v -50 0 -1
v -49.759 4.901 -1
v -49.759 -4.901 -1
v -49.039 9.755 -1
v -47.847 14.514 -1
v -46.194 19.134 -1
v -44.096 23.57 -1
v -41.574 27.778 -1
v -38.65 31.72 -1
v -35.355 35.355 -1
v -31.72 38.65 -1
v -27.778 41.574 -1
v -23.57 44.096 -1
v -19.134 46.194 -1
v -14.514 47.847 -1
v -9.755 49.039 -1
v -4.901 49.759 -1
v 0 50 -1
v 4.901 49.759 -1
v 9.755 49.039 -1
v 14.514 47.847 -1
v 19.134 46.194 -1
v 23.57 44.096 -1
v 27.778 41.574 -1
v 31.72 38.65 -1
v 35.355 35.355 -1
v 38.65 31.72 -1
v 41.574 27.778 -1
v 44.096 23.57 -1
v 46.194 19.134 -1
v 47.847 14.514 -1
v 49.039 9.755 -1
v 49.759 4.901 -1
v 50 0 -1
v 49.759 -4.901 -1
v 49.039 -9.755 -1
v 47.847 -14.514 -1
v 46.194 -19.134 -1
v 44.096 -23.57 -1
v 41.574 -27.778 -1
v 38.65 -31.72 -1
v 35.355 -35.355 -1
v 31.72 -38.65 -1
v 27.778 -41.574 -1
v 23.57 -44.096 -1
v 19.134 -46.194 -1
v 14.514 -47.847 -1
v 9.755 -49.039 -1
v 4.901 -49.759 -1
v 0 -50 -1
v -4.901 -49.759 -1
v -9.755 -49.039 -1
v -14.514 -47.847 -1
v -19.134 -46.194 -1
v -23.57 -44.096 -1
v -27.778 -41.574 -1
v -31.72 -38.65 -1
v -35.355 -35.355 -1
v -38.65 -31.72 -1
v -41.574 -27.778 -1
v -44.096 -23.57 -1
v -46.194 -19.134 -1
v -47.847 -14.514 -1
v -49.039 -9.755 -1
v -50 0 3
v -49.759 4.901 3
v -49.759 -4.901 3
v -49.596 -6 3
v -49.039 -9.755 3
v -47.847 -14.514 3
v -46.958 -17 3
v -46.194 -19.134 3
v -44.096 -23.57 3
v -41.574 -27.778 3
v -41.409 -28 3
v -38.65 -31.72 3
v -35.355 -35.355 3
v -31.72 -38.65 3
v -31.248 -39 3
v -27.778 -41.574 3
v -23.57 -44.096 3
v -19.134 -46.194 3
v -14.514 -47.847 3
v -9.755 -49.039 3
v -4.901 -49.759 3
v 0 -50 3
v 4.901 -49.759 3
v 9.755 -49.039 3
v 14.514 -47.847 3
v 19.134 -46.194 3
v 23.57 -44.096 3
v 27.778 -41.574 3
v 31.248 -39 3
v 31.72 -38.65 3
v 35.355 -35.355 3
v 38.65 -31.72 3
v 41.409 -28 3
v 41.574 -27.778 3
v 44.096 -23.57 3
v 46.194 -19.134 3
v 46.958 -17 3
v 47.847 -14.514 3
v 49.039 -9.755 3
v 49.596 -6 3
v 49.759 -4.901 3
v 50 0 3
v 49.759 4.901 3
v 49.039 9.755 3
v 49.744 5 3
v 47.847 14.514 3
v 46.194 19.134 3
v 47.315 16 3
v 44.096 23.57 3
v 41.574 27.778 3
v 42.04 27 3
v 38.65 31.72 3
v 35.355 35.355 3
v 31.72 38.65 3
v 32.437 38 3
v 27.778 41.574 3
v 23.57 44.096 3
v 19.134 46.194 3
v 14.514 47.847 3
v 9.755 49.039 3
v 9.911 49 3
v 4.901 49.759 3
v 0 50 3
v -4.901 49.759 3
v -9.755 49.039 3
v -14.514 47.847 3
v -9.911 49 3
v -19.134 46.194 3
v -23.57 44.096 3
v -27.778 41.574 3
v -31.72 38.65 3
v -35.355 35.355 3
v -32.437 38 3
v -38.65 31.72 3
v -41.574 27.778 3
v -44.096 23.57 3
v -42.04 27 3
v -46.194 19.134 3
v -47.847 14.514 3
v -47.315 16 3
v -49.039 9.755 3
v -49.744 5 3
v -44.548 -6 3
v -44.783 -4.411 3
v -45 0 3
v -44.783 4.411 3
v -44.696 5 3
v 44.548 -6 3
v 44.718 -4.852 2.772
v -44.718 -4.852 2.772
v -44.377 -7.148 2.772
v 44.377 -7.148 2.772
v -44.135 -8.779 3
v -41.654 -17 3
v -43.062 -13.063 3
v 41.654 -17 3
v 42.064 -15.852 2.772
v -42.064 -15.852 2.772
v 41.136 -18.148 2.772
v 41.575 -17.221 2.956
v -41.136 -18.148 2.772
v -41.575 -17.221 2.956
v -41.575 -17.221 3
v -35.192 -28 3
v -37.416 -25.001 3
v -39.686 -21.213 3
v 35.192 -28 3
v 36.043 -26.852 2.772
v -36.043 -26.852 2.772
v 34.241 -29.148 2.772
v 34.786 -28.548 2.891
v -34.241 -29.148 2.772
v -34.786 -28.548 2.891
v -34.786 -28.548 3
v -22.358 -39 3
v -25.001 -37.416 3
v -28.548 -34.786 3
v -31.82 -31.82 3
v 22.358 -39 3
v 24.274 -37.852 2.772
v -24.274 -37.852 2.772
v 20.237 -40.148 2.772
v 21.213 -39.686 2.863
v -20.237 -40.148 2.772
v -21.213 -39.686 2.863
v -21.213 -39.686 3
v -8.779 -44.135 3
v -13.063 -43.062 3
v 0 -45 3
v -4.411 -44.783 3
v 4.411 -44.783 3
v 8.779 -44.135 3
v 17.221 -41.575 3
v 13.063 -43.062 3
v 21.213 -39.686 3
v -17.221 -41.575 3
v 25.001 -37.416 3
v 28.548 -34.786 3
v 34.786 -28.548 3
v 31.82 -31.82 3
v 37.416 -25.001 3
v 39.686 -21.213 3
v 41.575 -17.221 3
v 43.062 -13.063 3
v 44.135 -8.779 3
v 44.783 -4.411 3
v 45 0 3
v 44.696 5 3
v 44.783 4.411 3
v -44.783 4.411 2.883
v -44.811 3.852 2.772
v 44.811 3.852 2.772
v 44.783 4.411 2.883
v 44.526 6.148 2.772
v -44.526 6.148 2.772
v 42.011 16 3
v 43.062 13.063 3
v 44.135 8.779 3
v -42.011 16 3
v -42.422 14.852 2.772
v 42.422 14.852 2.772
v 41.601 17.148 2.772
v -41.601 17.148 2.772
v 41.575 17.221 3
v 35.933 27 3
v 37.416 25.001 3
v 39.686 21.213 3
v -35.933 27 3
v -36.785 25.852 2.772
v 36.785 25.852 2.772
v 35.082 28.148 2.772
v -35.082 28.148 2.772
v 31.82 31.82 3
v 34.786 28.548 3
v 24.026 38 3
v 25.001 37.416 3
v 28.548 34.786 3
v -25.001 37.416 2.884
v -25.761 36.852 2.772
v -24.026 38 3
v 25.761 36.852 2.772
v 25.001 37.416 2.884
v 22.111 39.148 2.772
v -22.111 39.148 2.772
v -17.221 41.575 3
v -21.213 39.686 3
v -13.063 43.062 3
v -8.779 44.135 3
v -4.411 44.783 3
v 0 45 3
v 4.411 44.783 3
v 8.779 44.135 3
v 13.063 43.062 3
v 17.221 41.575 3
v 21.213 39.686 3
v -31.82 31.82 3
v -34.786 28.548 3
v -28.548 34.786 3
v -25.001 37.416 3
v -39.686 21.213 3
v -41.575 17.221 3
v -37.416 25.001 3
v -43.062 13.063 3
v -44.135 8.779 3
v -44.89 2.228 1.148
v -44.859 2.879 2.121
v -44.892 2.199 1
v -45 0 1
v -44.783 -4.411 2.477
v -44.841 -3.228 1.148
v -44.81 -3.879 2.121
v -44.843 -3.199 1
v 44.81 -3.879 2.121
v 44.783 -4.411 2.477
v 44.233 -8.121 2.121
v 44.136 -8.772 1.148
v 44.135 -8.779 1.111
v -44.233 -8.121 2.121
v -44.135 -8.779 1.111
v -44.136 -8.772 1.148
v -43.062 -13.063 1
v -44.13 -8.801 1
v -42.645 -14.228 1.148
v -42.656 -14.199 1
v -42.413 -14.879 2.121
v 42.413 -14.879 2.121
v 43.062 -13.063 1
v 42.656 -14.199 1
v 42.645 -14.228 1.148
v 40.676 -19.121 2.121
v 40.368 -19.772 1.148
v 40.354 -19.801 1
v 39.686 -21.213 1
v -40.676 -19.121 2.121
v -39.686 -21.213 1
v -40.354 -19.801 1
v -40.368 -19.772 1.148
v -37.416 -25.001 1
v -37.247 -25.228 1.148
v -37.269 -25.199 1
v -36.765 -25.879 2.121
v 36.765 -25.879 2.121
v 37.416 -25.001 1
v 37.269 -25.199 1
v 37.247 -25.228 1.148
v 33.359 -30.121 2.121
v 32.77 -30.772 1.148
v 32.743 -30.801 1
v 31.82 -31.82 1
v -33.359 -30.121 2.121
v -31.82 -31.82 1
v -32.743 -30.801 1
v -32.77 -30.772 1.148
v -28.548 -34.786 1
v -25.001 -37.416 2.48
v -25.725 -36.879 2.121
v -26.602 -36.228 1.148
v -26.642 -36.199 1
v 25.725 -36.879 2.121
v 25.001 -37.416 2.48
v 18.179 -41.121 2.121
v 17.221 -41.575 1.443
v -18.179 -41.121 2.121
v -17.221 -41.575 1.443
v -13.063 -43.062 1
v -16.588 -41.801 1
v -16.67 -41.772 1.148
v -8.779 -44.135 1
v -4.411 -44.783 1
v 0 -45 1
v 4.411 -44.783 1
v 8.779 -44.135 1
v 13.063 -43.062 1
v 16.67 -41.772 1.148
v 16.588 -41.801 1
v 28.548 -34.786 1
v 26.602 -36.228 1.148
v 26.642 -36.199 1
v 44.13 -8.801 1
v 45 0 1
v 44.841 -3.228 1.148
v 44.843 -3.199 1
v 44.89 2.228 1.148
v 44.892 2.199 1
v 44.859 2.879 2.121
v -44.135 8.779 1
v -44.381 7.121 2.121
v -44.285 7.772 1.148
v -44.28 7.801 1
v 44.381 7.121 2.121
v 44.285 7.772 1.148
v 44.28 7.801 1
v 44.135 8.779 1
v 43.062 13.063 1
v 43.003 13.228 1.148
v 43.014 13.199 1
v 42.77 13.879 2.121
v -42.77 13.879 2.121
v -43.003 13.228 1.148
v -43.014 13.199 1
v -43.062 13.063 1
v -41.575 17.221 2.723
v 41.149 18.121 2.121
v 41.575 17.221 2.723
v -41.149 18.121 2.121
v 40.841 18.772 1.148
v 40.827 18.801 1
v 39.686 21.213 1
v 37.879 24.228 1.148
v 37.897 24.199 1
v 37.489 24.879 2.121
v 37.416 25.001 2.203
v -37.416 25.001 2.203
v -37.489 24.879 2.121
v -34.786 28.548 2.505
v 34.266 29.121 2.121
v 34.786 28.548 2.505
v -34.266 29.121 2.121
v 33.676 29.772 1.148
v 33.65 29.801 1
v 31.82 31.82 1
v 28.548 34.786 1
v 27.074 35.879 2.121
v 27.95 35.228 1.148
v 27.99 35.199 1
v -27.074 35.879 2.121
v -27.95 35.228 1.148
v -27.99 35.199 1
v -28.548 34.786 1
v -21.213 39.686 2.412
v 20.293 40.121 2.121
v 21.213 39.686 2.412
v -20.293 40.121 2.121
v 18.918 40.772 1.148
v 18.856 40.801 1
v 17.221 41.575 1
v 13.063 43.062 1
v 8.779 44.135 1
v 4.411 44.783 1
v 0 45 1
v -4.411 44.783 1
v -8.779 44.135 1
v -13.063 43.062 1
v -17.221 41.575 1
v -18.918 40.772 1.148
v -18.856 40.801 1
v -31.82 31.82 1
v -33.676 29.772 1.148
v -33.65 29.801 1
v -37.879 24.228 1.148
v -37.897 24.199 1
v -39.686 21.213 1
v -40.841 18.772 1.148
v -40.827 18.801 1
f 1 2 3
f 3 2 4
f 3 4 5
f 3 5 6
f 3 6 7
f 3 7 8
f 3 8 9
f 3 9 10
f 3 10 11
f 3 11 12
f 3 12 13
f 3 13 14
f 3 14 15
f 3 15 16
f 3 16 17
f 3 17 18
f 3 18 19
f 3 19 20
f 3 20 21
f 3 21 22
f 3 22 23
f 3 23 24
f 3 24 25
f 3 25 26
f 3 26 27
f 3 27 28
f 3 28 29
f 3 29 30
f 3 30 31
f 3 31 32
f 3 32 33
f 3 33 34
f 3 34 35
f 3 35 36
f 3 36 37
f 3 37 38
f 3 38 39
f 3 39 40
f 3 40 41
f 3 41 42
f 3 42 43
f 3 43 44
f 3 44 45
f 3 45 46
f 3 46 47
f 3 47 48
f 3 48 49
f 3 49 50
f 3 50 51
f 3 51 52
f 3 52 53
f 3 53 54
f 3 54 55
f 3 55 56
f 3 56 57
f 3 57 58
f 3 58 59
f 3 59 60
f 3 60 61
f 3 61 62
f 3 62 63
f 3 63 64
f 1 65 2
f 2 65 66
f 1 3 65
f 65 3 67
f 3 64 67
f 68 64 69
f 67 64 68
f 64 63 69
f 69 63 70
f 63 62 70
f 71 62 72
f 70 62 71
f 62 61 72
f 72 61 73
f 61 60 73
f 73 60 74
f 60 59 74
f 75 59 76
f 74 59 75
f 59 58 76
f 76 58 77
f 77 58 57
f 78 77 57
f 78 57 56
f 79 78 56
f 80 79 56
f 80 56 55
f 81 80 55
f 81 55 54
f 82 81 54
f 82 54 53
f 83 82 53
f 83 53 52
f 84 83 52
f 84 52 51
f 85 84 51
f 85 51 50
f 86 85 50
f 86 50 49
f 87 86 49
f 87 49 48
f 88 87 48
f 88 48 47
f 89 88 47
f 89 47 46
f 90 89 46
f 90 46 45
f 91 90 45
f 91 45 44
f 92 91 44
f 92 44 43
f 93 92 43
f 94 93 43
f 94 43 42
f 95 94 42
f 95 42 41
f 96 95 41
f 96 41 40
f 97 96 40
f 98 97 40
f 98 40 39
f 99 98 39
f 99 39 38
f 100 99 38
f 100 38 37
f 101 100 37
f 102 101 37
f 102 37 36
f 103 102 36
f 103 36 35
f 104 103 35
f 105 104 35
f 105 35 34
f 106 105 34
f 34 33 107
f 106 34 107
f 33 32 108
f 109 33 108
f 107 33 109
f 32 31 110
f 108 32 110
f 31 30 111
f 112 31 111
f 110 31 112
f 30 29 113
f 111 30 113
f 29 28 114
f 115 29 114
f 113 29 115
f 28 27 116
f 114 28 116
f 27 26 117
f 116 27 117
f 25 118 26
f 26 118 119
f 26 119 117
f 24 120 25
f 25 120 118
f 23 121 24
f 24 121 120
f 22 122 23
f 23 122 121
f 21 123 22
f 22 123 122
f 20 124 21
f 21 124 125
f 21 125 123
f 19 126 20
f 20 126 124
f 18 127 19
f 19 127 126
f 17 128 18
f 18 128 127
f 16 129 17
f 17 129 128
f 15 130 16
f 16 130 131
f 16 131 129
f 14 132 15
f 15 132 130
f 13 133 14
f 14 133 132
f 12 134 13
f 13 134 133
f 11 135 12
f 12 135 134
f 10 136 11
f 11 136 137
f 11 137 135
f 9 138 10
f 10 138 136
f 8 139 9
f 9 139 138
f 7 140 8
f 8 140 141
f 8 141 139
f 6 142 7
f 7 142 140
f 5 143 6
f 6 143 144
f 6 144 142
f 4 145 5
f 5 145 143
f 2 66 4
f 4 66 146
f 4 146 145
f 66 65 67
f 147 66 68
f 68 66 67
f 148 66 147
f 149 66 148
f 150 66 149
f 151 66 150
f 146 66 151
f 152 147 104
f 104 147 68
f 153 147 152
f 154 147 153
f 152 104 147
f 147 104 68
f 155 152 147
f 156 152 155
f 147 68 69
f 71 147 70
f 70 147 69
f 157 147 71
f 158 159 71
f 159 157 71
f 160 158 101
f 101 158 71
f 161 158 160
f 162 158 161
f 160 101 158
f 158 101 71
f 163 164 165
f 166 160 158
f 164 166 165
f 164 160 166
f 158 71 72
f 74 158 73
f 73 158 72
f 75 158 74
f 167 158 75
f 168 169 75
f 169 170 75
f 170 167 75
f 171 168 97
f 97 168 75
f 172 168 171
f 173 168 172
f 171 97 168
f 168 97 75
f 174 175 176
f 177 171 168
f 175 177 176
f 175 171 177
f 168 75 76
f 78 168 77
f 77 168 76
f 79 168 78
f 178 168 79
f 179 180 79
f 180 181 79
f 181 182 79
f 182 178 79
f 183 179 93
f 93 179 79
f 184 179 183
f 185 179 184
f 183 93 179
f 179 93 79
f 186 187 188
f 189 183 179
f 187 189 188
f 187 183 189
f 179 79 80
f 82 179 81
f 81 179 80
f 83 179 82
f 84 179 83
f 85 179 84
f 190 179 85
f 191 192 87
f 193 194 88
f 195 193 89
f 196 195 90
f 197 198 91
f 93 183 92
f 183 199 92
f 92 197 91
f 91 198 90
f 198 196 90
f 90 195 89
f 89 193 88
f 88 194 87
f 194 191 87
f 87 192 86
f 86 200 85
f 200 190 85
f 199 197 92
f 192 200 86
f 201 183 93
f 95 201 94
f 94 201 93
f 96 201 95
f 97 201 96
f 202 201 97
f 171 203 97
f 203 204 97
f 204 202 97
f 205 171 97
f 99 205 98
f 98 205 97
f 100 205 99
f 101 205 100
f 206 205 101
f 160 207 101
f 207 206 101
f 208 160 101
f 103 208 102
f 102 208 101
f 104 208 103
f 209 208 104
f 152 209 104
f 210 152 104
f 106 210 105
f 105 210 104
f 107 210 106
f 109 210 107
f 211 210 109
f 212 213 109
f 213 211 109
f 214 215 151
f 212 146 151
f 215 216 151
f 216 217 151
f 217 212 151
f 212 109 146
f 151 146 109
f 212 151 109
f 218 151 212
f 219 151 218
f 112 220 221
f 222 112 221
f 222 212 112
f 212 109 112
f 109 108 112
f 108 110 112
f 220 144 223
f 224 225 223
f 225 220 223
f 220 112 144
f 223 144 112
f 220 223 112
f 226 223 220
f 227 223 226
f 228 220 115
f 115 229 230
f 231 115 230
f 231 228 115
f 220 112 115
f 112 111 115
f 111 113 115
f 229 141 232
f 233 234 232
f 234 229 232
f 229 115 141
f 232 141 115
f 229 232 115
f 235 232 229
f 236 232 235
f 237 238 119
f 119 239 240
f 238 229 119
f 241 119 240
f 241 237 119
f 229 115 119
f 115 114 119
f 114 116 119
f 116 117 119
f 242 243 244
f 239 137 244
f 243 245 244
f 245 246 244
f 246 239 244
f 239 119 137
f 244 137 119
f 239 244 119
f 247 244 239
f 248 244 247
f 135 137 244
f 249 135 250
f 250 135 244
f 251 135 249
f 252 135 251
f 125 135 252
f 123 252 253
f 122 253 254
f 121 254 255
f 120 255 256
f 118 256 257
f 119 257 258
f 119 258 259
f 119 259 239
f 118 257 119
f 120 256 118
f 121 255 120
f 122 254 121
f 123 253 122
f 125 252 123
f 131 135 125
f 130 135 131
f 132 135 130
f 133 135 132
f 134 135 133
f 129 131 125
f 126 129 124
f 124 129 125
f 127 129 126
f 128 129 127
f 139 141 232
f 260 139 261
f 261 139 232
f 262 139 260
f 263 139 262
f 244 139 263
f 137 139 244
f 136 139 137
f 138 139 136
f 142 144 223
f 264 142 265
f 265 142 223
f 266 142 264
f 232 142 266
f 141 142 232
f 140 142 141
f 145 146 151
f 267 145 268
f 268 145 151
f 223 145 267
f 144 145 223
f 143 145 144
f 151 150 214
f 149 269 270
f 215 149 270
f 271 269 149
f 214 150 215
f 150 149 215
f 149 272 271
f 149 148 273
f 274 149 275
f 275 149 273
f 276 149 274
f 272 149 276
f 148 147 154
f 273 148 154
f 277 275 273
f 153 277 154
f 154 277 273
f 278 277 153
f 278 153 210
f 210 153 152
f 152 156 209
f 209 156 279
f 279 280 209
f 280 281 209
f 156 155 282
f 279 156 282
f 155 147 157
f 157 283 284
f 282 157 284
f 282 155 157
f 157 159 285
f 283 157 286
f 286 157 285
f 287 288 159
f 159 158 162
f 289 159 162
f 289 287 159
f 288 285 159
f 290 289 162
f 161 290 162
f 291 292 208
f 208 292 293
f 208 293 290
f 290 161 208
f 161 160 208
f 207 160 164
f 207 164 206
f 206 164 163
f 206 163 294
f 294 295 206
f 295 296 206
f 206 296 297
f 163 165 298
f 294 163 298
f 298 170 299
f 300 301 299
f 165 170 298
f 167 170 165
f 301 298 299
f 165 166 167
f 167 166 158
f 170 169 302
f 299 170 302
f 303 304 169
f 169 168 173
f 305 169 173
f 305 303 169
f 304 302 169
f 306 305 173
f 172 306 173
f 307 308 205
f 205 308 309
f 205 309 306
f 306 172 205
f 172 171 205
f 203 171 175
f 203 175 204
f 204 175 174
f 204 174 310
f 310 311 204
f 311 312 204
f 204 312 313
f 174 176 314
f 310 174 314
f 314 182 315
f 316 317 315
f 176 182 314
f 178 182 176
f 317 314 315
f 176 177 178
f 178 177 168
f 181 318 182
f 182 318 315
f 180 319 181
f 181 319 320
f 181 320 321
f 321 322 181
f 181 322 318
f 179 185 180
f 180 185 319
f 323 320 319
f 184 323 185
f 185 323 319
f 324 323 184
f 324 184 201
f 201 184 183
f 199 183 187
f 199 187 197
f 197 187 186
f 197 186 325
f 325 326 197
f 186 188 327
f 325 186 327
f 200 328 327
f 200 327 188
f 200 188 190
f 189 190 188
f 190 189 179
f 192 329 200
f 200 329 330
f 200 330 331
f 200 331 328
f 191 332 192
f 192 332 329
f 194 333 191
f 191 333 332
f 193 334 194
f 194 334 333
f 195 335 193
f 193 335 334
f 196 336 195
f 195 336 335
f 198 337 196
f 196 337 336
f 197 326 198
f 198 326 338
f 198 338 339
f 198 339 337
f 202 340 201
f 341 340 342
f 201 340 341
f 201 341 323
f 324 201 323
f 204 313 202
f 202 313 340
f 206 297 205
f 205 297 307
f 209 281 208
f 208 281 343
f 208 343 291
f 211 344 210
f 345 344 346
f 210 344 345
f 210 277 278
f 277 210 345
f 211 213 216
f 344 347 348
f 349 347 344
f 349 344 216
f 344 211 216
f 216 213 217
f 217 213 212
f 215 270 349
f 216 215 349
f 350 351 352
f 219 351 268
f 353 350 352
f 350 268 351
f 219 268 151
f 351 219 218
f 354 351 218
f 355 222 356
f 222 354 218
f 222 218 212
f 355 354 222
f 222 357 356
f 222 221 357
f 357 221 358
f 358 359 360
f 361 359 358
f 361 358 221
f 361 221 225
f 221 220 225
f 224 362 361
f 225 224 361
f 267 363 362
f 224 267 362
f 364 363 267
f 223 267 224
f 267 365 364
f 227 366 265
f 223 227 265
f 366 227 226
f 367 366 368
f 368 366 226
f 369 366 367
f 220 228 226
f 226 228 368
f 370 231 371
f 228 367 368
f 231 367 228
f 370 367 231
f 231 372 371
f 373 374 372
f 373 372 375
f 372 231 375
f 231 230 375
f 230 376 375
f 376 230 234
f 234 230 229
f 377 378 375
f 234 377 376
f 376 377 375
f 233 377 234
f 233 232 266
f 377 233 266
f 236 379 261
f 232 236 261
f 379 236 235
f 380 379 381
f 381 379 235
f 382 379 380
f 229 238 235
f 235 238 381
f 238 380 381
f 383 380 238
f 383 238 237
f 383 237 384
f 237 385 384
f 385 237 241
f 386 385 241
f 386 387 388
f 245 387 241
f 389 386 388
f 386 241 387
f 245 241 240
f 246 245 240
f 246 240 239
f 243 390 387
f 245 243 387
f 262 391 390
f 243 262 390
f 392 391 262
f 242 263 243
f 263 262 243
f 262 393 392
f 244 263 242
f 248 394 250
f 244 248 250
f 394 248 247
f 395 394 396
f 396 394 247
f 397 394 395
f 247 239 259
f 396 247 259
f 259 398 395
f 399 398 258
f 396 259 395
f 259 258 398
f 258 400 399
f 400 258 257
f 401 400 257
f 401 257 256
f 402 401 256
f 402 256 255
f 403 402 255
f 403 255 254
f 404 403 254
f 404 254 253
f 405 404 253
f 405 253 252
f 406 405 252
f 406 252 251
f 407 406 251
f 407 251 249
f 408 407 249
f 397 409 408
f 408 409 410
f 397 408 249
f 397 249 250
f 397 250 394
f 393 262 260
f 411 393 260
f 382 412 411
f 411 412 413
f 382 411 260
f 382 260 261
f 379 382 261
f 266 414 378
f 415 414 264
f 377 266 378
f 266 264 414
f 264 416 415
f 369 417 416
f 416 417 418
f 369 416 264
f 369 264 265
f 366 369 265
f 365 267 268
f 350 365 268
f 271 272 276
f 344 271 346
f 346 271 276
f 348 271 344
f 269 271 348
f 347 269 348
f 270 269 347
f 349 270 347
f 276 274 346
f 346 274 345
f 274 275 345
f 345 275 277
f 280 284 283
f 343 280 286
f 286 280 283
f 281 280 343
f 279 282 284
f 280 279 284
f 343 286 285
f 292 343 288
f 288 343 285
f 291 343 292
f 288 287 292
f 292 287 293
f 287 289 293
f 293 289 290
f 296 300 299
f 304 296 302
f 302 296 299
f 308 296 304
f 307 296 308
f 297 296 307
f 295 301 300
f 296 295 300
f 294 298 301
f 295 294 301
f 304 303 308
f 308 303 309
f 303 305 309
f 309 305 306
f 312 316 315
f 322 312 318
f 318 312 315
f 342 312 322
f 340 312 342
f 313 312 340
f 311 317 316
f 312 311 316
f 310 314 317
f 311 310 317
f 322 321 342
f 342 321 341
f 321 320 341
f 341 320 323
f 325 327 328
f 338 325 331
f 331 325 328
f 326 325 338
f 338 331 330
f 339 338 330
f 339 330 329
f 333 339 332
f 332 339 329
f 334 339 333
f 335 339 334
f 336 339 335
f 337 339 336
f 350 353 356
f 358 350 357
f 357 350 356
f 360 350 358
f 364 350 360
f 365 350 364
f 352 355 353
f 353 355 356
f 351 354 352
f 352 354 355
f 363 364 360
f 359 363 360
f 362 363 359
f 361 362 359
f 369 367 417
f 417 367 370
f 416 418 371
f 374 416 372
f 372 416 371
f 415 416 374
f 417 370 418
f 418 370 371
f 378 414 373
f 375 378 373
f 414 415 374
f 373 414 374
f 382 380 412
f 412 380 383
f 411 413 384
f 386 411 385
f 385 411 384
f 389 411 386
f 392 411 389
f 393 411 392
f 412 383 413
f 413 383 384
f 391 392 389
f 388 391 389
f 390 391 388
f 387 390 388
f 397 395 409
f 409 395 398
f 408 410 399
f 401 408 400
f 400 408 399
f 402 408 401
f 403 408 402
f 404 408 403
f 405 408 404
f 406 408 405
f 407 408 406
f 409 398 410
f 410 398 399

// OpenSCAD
union() {
	translate( [ 0, 0, +0 ] )
	difference() {
		cylinder( r=50, h=3, $fn=64 );
		translate( [ 0, 0, -1 ] )
		cylinder( r=45, h=10, $fn=64 );
	}
	
	union() {
		translate( [ 0, 0, -1 ] )
		cylinder( r=50, h=2, $fn=64 );
		intersection() {
			cylinder( r=50, h=20, $fn=64 );
			for( x=[-50:11:50] ) {
				translate( [ -50, x, 0 ] )
				rotate( 90, [0,1,0] )
				cylinder( r=3, h=100, $fn=16 );
			}
		}
	}
}
